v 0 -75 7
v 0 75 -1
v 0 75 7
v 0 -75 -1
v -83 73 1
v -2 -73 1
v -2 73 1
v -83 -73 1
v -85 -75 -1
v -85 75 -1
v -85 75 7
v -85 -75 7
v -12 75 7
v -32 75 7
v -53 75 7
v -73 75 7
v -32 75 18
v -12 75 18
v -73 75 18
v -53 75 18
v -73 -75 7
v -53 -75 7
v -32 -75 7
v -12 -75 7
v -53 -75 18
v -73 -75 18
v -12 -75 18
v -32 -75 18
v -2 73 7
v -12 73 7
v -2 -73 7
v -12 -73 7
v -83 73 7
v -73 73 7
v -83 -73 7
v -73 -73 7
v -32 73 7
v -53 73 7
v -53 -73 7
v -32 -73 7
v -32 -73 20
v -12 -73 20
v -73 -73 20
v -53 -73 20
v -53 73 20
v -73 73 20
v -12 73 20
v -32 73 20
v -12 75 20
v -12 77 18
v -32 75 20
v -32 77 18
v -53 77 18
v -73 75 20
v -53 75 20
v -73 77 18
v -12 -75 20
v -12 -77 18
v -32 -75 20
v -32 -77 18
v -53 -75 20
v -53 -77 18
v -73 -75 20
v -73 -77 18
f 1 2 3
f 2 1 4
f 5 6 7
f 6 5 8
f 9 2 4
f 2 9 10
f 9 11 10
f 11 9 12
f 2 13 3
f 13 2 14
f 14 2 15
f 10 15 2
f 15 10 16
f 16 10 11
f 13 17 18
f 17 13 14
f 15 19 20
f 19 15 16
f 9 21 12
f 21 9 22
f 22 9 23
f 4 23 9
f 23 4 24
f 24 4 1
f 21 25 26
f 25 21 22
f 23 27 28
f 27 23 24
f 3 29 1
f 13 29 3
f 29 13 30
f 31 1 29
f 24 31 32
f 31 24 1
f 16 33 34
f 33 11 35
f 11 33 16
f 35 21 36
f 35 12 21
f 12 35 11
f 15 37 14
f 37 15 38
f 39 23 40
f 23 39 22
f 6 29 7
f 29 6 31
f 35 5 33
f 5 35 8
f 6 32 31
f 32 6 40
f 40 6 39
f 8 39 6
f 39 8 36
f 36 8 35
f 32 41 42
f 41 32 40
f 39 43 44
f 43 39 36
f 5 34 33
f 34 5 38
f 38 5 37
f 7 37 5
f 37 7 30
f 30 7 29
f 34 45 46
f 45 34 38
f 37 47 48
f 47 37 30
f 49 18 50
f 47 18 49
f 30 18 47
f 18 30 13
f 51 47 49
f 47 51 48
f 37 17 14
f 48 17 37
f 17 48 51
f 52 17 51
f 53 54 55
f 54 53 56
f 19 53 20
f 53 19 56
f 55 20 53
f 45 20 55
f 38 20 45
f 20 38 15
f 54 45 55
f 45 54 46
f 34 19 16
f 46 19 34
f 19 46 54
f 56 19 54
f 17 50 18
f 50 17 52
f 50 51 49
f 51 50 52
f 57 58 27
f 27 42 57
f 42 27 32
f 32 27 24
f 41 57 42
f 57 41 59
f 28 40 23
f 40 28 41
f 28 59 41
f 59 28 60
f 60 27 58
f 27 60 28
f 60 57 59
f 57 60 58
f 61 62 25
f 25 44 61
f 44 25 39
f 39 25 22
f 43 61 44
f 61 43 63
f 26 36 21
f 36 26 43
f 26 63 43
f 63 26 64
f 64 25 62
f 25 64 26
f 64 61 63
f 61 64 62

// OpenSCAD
// pared
    translate([-42.5, 0, 0])
        cube([85, 150, 2], center = true);

// base 
    translate([-1, 0, 3])
        cube([2, 150, 8], center = true);
        
// techo
    translate([-84, 0, 3])
        cube([2, 150, 8], center = true);

// flanco izquierdo
    rotate([0, 0, 90])
        translate([-74, 42.5, 3])
            cube([2, 85, 8], center = true);

// flanco derecho
    rotate([0, 0, 90])
        translate([74, 42.5, 3])
            cube([2, 85, 8], center = true);

// traba derecha inferior
    translate([-32, 73, 0])
        cube([20, 2, 20]);
    translate([-32 - 41, 73, 18])
        rotate([90, 0, 90])
            traba();
        
// traba derecha superior
    translate([-32 -41, 73, 0])
        cube([20, 2, 20]);
    translate([-32, 73, 18])
        rotate([90, 0, 90])
            traba();

// traba izquierda inferior
    translate([-32, -75, 0])
        cube([20, 2, 20]);
    translate([-12, -73, 18])
        rotate([90, 0, -90])
            traba();
        
// traba izquierda superior
    translate([-32 -41, -75, 0])
        cube([20, 2, 20]);
    translate([-10 -43, -73, 18])
        rotate([90, 0, -90])
            traba();

// traba

module traba()
{
linear_extrude(20)
    polygon([
        [0,0],
        [0,2],
        [2,2],
        [4,0]
    ]);
}
